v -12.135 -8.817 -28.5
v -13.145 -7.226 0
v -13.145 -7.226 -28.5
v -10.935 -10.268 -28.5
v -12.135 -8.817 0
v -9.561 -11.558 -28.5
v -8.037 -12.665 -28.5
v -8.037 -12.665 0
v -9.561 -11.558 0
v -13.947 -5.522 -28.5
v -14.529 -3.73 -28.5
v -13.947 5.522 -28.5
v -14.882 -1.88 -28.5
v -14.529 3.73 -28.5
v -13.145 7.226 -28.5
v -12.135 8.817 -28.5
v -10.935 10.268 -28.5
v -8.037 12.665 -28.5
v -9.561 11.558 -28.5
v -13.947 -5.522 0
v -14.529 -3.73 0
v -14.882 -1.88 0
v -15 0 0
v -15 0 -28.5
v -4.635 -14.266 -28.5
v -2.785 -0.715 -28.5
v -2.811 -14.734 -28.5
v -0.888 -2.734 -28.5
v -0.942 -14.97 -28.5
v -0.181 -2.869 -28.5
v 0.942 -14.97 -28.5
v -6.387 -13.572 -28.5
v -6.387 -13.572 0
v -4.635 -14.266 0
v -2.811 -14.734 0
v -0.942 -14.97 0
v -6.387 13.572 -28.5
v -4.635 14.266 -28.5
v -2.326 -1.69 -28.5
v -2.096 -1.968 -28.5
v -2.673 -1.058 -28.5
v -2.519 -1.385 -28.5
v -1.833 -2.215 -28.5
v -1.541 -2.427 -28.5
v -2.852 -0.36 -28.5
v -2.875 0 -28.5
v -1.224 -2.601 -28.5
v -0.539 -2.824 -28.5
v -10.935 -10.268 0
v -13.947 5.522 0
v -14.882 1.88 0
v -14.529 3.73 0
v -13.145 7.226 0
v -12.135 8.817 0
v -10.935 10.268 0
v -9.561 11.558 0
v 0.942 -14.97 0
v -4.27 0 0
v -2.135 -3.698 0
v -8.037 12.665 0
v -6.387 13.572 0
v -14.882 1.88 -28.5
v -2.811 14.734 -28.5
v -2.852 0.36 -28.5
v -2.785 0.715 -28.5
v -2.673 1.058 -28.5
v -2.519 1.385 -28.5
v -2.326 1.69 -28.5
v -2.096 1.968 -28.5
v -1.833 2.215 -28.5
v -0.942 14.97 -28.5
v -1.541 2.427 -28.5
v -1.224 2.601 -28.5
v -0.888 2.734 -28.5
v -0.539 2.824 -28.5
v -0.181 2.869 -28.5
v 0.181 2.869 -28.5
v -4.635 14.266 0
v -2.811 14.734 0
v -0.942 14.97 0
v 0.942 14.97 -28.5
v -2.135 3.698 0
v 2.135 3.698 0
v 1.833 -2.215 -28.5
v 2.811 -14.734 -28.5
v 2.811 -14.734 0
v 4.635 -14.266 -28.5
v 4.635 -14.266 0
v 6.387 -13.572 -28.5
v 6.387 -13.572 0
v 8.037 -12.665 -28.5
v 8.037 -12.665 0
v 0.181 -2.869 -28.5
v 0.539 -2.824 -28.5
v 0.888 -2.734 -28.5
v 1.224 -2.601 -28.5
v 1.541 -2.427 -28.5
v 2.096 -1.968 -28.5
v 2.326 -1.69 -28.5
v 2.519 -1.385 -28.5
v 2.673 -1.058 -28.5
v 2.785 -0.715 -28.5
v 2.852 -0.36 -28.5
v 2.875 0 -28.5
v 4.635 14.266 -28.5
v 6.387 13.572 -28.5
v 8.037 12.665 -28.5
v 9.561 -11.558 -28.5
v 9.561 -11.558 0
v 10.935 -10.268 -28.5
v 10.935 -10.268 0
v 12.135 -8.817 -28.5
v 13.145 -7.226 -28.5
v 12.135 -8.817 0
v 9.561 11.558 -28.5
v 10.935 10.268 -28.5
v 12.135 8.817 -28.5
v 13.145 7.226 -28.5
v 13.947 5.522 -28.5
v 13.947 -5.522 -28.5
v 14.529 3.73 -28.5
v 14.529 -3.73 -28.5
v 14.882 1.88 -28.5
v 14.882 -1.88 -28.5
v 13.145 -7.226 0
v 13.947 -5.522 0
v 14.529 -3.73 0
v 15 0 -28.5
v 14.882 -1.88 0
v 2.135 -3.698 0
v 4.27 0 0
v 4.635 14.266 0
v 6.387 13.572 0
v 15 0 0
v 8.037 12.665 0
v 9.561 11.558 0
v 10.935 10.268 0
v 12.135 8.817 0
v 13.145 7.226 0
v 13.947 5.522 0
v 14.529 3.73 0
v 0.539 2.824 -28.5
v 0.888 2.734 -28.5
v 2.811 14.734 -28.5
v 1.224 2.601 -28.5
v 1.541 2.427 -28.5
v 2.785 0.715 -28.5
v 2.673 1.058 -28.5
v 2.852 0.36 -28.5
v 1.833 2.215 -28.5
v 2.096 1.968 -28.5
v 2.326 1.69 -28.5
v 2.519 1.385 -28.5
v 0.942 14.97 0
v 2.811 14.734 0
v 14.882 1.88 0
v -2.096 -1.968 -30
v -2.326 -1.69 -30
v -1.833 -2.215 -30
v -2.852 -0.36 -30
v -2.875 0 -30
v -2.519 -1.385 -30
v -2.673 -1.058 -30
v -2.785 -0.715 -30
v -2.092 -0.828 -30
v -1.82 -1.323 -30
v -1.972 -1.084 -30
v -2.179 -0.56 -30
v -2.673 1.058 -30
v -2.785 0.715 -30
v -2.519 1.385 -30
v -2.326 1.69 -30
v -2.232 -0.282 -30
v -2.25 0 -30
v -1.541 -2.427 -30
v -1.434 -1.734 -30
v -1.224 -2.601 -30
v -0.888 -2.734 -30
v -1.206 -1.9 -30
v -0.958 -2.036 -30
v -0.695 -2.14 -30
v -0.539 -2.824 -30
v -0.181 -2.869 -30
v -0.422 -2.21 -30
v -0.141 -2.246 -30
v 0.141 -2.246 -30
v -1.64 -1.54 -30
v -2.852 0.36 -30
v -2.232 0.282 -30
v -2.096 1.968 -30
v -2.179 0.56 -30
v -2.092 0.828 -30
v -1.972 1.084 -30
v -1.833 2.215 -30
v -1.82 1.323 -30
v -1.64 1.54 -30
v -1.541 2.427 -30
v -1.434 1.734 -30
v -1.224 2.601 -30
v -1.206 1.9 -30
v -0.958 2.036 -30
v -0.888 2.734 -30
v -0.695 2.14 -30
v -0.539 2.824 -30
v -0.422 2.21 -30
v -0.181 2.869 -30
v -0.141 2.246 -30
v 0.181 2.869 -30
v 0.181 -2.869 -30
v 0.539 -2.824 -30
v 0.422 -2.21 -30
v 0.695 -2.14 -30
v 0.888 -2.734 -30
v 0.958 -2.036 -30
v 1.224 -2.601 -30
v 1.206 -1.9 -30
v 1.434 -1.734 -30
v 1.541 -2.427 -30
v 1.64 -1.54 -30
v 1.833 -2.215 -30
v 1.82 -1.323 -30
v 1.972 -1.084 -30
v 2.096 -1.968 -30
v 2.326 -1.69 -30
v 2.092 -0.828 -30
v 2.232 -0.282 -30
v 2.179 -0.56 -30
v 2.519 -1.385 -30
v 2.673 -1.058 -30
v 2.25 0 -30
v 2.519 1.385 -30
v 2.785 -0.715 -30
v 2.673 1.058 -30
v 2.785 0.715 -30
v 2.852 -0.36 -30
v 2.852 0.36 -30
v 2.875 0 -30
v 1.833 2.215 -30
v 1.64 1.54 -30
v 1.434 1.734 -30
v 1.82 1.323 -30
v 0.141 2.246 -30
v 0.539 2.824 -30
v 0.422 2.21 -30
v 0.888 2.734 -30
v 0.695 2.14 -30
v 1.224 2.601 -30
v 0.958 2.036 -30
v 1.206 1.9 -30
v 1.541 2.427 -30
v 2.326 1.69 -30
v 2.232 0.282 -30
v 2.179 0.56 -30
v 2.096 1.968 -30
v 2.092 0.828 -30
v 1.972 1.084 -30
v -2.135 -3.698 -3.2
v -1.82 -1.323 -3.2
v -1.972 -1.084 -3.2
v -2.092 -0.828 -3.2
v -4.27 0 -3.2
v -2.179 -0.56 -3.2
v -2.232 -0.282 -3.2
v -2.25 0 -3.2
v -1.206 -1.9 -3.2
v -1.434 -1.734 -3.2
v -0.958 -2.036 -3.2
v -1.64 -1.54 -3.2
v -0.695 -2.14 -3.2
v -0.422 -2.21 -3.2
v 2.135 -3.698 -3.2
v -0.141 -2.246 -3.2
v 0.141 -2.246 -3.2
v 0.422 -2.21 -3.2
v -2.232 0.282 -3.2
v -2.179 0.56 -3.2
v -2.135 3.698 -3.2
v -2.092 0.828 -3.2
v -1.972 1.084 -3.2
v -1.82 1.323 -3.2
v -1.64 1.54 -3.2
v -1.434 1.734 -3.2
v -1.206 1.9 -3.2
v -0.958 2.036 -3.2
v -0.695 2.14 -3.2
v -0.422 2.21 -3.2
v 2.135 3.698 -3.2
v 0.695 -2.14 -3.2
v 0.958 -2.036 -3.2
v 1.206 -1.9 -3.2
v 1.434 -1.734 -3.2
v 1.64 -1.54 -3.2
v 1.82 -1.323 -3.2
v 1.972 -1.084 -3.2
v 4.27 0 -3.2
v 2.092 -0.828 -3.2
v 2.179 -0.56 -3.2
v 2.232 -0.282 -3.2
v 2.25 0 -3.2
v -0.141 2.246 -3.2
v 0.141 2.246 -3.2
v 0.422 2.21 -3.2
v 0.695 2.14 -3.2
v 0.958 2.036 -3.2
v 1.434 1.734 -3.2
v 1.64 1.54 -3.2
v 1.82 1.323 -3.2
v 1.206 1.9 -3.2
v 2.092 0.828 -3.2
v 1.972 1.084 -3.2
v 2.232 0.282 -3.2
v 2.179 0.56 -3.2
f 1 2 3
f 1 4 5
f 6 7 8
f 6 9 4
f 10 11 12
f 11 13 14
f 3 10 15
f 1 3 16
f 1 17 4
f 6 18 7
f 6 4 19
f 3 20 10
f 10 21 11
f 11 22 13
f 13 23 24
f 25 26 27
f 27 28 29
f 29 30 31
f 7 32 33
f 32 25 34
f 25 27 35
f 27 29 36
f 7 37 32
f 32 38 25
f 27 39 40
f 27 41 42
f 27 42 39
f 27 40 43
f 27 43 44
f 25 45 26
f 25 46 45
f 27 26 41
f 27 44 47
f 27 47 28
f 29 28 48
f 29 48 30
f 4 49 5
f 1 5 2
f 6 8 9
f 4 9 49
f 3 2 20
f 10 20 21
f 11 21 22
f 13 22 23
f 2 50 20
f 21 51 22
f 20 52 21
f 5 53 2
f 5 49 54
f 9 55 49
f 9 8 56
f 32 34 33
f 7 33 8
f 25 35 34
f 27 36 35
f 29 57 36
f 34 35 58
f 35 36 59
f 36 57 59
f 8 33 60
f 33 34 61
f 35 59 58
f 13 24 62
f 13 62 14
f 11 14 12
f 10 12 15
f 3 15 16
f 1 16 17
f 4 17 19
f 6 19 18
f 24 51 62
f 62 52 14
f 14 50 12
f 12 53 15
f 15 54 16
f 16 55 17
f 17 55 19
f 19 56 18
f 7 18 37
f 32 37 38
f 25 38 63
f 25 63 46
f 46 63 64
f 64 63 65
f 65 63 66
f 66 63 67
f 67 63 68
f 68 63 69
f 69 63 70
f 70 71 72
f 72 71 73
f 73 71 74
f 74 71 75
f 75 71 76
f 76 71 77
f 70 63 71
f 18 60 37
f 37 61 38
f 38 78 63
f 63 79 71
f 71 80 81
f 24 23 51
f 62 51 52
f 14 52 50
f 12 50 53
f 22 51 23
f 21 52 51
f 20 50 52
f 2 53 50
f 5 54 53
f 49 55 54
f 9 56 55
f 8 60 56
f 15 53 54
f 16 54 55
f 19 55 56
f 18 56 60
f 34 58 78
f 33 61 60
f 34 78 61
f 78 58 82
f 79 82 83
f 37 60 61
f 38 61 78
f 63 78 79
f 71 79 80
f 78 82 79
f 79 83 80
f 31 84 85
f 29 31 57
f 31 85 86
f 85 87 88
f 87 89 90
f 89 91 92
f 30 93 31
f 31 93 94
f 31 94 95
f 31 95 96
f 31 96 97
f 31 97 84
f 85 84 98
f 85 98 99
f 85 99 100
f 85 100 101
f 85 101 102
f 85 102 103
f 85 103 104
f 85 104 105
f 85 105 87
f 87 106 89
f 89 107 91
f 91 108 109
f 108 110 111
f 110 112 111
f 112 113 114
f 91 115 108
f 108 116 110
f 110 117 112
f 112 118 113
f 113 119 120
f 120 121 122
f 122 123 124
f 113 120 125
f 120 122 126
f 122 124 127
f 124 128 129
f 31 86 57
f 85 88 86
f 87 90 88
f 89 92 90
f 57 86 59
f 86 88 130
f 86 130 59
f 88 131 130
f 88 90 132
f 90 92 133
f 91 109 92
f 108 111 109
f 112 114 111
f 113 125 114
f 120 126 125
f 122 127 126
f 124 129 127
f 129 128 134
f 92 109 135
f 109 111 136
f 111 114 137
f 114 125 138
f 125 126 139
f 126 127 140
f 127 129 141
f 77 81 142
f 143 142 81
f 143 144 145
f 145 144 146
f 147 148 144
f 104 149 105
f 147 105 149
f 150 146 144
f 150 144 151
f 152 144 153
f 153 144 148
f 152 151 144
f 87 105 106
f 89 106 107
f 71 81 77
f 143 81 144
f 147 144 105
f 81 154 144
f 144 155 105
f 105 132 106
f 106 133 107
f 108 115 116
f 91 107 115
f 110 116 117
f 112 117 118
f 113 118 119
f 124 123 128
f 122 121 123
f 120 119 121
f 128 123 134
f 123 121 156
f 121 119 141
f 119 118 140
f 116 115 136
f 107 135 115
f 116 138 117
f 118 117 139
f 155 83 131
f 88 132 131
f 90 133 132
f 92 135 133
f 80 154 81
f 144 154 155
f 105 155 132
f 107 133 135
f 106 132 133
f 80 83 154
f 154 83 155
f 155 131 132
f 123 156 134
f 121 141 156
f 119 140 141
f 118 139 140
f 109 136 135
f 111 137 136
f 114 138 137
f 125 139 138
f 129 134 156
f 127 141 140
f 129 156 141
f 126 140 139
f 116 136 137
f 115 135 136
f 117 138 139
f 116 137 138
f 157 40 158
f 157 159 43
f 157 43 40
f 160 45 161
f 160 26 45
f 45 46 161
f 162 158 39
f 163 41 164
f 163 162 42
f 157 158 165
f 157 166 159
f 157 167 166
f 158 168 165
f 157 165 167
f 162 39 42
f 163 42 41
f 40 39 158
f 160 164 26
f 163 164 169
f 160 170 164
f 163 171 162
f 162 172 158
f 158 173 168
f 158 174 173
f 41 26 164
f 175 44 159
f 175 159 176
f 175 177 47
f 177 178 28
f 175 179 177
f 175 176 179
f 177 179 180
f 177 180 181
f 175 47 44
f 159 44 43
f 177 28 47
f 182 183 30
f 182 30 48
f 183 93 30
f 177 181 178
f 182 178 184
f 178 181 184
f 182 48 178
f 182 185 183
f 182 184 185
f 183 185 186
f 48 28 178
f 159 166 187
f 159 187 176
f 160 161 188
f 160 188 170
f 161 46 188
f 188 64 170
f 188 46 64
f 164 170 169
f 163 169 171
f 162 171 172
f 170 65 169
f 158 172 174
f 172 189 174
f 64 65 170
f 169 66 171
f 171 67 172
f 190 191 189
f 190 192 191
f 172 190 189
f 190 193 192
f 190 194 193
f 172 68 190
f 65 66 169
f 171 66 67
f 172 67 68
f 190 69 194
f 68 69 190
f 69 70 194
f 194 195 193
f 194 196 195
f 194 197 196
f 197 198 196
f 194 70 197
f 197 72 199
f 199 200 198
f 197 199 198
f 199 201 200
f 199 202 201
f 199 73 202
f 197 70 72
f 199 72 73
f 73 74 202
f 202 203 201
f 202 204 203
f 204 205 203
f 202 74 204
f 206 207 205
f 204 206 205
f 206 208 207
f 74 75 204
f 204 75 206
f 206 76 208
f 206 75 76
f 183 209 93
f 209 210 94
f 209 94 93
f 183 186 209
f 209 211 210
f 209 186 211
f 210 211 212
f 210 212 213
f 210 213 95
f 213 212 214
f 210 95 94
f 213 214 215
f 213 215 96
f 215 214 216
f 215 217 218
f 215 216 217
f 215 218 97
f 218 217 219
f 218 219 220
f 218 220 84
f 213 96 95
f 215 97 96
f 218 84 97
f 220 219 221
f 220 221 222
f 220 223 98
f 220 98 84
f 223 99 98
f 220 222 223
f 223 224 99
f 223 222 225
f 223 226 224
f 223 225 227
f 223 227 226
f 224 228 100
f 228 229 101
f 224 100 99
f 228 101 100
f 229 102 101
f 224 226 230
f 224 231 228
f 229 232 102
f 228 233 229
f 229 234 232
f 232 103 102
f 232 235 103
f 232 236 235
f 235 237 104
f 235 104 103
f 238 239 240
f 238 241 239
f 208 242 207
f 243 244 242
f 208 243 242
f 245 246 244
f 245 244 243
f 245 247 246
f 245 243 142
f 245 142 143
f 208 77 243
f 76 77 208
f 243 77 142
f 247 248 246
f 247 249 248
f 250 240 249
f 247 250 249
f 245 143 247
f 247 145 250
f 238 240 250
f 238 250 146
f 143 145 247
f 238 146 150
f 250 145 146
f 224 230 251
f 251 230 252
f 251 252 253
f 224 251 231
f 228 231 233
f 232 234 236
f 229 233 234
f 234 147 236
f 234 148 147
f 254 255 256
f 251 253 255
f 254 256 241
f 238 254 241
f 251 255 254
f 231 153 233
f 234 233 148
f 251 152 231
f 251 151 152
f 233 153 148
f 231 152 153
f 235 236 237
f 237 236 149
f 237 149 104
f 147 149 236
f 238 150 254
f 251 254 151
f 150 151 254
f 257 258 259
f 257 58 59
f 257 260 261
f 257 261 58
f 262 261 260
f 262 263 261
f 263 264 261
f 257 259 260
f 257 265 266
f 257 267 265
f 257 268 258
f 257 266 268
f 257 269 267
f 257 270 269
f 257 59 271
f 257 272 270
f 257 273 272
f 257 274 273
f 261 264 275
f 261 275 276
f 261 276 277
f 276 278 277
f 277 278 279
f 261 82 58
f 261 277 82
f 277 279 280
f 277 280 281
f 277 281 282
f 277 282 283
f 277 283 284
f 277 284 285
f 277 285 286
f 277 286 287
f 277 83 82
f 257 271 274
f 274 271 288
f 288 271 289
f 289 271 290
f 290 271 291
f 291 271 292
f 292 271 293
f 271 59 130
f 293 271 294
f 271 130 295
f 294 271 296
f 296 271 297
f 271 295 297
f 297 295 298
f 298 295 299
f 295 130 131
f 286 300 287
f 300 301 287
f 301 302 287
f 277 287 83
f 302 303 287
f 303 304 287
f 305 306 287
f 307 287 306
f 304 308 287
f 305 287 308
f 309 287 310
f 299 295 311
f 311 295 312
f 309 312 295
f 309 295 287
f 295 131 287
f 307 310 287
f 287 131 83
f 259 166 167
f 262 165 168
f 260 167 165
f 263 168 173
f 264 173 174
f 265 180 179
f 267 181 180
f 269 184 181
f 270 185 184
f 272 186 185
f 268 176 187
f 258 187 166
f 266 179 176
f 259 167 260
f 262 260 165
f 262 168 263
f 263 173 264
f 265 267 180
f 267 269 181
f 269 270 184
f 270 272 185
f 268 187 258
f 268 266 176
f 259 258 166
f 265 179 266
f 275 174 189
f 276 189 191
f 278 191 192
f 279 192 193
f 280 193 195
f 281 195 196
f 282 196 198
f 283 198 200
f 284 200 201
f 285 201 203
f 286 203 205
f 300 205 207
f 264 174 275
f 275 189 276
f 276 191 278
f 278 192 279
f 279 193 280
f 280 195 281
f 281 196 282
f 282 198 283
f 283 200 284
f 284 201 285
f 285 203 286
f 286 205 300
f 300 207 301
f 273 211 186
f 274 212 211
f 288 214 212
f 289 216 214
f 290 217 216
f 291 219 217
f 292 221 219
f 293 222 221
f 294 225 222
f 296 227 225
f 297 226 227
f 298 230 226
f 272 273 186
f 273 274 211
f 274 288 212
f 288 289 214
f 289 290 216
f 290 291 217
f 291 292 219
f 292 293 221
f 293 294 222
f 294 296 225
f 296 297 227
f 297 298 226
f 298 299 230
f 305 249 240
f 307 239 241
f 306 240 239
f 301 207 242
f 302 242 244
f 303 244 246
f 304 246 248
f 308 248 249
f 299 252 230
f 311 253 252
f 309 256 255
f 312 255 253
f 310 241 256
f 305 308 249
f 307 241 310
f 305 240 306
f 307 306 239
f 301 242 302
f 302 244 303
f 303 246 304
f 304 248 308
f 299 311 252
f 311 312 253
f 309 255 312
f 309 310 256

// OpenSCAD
$fn = 50;


difference() {
	union() {
		translate(v = [0, 0, -28.5000000000]) {
			cylinder(h = 28.5000000000, r = 15.0000000000);
		}
		#translate(v = [0, 0, -30.0000000000]) {
			cylinder(h = 30, r = 2.8750000000);
		}
	}
	union() {
		translate(v = [0, 0, 0]) {
			rotate(a = [0, 0, 0]) {
				difference() {
					union() {
						translate(v = [0, 0, -3.2000000000]) {
							linear_extrude(height = 3.2000000000) {
								polygon(points = [[4.2698000000, 0.0000000000], [2.1349000000, 3.6977552691], [-2.1349000000, 3.6977552691], [-4.2698000000, 0.0000000000], [-2.1349000000, -3.6977552691], [2.1349000000, -3.6977552691]]);
							}
						}
					}
					union();
				}
			}
		}
		#translate(v = [0, 0, -100.0000000000]) {
			cylinder(h = 200, r = 2.2500000000);
		}
	}
}
